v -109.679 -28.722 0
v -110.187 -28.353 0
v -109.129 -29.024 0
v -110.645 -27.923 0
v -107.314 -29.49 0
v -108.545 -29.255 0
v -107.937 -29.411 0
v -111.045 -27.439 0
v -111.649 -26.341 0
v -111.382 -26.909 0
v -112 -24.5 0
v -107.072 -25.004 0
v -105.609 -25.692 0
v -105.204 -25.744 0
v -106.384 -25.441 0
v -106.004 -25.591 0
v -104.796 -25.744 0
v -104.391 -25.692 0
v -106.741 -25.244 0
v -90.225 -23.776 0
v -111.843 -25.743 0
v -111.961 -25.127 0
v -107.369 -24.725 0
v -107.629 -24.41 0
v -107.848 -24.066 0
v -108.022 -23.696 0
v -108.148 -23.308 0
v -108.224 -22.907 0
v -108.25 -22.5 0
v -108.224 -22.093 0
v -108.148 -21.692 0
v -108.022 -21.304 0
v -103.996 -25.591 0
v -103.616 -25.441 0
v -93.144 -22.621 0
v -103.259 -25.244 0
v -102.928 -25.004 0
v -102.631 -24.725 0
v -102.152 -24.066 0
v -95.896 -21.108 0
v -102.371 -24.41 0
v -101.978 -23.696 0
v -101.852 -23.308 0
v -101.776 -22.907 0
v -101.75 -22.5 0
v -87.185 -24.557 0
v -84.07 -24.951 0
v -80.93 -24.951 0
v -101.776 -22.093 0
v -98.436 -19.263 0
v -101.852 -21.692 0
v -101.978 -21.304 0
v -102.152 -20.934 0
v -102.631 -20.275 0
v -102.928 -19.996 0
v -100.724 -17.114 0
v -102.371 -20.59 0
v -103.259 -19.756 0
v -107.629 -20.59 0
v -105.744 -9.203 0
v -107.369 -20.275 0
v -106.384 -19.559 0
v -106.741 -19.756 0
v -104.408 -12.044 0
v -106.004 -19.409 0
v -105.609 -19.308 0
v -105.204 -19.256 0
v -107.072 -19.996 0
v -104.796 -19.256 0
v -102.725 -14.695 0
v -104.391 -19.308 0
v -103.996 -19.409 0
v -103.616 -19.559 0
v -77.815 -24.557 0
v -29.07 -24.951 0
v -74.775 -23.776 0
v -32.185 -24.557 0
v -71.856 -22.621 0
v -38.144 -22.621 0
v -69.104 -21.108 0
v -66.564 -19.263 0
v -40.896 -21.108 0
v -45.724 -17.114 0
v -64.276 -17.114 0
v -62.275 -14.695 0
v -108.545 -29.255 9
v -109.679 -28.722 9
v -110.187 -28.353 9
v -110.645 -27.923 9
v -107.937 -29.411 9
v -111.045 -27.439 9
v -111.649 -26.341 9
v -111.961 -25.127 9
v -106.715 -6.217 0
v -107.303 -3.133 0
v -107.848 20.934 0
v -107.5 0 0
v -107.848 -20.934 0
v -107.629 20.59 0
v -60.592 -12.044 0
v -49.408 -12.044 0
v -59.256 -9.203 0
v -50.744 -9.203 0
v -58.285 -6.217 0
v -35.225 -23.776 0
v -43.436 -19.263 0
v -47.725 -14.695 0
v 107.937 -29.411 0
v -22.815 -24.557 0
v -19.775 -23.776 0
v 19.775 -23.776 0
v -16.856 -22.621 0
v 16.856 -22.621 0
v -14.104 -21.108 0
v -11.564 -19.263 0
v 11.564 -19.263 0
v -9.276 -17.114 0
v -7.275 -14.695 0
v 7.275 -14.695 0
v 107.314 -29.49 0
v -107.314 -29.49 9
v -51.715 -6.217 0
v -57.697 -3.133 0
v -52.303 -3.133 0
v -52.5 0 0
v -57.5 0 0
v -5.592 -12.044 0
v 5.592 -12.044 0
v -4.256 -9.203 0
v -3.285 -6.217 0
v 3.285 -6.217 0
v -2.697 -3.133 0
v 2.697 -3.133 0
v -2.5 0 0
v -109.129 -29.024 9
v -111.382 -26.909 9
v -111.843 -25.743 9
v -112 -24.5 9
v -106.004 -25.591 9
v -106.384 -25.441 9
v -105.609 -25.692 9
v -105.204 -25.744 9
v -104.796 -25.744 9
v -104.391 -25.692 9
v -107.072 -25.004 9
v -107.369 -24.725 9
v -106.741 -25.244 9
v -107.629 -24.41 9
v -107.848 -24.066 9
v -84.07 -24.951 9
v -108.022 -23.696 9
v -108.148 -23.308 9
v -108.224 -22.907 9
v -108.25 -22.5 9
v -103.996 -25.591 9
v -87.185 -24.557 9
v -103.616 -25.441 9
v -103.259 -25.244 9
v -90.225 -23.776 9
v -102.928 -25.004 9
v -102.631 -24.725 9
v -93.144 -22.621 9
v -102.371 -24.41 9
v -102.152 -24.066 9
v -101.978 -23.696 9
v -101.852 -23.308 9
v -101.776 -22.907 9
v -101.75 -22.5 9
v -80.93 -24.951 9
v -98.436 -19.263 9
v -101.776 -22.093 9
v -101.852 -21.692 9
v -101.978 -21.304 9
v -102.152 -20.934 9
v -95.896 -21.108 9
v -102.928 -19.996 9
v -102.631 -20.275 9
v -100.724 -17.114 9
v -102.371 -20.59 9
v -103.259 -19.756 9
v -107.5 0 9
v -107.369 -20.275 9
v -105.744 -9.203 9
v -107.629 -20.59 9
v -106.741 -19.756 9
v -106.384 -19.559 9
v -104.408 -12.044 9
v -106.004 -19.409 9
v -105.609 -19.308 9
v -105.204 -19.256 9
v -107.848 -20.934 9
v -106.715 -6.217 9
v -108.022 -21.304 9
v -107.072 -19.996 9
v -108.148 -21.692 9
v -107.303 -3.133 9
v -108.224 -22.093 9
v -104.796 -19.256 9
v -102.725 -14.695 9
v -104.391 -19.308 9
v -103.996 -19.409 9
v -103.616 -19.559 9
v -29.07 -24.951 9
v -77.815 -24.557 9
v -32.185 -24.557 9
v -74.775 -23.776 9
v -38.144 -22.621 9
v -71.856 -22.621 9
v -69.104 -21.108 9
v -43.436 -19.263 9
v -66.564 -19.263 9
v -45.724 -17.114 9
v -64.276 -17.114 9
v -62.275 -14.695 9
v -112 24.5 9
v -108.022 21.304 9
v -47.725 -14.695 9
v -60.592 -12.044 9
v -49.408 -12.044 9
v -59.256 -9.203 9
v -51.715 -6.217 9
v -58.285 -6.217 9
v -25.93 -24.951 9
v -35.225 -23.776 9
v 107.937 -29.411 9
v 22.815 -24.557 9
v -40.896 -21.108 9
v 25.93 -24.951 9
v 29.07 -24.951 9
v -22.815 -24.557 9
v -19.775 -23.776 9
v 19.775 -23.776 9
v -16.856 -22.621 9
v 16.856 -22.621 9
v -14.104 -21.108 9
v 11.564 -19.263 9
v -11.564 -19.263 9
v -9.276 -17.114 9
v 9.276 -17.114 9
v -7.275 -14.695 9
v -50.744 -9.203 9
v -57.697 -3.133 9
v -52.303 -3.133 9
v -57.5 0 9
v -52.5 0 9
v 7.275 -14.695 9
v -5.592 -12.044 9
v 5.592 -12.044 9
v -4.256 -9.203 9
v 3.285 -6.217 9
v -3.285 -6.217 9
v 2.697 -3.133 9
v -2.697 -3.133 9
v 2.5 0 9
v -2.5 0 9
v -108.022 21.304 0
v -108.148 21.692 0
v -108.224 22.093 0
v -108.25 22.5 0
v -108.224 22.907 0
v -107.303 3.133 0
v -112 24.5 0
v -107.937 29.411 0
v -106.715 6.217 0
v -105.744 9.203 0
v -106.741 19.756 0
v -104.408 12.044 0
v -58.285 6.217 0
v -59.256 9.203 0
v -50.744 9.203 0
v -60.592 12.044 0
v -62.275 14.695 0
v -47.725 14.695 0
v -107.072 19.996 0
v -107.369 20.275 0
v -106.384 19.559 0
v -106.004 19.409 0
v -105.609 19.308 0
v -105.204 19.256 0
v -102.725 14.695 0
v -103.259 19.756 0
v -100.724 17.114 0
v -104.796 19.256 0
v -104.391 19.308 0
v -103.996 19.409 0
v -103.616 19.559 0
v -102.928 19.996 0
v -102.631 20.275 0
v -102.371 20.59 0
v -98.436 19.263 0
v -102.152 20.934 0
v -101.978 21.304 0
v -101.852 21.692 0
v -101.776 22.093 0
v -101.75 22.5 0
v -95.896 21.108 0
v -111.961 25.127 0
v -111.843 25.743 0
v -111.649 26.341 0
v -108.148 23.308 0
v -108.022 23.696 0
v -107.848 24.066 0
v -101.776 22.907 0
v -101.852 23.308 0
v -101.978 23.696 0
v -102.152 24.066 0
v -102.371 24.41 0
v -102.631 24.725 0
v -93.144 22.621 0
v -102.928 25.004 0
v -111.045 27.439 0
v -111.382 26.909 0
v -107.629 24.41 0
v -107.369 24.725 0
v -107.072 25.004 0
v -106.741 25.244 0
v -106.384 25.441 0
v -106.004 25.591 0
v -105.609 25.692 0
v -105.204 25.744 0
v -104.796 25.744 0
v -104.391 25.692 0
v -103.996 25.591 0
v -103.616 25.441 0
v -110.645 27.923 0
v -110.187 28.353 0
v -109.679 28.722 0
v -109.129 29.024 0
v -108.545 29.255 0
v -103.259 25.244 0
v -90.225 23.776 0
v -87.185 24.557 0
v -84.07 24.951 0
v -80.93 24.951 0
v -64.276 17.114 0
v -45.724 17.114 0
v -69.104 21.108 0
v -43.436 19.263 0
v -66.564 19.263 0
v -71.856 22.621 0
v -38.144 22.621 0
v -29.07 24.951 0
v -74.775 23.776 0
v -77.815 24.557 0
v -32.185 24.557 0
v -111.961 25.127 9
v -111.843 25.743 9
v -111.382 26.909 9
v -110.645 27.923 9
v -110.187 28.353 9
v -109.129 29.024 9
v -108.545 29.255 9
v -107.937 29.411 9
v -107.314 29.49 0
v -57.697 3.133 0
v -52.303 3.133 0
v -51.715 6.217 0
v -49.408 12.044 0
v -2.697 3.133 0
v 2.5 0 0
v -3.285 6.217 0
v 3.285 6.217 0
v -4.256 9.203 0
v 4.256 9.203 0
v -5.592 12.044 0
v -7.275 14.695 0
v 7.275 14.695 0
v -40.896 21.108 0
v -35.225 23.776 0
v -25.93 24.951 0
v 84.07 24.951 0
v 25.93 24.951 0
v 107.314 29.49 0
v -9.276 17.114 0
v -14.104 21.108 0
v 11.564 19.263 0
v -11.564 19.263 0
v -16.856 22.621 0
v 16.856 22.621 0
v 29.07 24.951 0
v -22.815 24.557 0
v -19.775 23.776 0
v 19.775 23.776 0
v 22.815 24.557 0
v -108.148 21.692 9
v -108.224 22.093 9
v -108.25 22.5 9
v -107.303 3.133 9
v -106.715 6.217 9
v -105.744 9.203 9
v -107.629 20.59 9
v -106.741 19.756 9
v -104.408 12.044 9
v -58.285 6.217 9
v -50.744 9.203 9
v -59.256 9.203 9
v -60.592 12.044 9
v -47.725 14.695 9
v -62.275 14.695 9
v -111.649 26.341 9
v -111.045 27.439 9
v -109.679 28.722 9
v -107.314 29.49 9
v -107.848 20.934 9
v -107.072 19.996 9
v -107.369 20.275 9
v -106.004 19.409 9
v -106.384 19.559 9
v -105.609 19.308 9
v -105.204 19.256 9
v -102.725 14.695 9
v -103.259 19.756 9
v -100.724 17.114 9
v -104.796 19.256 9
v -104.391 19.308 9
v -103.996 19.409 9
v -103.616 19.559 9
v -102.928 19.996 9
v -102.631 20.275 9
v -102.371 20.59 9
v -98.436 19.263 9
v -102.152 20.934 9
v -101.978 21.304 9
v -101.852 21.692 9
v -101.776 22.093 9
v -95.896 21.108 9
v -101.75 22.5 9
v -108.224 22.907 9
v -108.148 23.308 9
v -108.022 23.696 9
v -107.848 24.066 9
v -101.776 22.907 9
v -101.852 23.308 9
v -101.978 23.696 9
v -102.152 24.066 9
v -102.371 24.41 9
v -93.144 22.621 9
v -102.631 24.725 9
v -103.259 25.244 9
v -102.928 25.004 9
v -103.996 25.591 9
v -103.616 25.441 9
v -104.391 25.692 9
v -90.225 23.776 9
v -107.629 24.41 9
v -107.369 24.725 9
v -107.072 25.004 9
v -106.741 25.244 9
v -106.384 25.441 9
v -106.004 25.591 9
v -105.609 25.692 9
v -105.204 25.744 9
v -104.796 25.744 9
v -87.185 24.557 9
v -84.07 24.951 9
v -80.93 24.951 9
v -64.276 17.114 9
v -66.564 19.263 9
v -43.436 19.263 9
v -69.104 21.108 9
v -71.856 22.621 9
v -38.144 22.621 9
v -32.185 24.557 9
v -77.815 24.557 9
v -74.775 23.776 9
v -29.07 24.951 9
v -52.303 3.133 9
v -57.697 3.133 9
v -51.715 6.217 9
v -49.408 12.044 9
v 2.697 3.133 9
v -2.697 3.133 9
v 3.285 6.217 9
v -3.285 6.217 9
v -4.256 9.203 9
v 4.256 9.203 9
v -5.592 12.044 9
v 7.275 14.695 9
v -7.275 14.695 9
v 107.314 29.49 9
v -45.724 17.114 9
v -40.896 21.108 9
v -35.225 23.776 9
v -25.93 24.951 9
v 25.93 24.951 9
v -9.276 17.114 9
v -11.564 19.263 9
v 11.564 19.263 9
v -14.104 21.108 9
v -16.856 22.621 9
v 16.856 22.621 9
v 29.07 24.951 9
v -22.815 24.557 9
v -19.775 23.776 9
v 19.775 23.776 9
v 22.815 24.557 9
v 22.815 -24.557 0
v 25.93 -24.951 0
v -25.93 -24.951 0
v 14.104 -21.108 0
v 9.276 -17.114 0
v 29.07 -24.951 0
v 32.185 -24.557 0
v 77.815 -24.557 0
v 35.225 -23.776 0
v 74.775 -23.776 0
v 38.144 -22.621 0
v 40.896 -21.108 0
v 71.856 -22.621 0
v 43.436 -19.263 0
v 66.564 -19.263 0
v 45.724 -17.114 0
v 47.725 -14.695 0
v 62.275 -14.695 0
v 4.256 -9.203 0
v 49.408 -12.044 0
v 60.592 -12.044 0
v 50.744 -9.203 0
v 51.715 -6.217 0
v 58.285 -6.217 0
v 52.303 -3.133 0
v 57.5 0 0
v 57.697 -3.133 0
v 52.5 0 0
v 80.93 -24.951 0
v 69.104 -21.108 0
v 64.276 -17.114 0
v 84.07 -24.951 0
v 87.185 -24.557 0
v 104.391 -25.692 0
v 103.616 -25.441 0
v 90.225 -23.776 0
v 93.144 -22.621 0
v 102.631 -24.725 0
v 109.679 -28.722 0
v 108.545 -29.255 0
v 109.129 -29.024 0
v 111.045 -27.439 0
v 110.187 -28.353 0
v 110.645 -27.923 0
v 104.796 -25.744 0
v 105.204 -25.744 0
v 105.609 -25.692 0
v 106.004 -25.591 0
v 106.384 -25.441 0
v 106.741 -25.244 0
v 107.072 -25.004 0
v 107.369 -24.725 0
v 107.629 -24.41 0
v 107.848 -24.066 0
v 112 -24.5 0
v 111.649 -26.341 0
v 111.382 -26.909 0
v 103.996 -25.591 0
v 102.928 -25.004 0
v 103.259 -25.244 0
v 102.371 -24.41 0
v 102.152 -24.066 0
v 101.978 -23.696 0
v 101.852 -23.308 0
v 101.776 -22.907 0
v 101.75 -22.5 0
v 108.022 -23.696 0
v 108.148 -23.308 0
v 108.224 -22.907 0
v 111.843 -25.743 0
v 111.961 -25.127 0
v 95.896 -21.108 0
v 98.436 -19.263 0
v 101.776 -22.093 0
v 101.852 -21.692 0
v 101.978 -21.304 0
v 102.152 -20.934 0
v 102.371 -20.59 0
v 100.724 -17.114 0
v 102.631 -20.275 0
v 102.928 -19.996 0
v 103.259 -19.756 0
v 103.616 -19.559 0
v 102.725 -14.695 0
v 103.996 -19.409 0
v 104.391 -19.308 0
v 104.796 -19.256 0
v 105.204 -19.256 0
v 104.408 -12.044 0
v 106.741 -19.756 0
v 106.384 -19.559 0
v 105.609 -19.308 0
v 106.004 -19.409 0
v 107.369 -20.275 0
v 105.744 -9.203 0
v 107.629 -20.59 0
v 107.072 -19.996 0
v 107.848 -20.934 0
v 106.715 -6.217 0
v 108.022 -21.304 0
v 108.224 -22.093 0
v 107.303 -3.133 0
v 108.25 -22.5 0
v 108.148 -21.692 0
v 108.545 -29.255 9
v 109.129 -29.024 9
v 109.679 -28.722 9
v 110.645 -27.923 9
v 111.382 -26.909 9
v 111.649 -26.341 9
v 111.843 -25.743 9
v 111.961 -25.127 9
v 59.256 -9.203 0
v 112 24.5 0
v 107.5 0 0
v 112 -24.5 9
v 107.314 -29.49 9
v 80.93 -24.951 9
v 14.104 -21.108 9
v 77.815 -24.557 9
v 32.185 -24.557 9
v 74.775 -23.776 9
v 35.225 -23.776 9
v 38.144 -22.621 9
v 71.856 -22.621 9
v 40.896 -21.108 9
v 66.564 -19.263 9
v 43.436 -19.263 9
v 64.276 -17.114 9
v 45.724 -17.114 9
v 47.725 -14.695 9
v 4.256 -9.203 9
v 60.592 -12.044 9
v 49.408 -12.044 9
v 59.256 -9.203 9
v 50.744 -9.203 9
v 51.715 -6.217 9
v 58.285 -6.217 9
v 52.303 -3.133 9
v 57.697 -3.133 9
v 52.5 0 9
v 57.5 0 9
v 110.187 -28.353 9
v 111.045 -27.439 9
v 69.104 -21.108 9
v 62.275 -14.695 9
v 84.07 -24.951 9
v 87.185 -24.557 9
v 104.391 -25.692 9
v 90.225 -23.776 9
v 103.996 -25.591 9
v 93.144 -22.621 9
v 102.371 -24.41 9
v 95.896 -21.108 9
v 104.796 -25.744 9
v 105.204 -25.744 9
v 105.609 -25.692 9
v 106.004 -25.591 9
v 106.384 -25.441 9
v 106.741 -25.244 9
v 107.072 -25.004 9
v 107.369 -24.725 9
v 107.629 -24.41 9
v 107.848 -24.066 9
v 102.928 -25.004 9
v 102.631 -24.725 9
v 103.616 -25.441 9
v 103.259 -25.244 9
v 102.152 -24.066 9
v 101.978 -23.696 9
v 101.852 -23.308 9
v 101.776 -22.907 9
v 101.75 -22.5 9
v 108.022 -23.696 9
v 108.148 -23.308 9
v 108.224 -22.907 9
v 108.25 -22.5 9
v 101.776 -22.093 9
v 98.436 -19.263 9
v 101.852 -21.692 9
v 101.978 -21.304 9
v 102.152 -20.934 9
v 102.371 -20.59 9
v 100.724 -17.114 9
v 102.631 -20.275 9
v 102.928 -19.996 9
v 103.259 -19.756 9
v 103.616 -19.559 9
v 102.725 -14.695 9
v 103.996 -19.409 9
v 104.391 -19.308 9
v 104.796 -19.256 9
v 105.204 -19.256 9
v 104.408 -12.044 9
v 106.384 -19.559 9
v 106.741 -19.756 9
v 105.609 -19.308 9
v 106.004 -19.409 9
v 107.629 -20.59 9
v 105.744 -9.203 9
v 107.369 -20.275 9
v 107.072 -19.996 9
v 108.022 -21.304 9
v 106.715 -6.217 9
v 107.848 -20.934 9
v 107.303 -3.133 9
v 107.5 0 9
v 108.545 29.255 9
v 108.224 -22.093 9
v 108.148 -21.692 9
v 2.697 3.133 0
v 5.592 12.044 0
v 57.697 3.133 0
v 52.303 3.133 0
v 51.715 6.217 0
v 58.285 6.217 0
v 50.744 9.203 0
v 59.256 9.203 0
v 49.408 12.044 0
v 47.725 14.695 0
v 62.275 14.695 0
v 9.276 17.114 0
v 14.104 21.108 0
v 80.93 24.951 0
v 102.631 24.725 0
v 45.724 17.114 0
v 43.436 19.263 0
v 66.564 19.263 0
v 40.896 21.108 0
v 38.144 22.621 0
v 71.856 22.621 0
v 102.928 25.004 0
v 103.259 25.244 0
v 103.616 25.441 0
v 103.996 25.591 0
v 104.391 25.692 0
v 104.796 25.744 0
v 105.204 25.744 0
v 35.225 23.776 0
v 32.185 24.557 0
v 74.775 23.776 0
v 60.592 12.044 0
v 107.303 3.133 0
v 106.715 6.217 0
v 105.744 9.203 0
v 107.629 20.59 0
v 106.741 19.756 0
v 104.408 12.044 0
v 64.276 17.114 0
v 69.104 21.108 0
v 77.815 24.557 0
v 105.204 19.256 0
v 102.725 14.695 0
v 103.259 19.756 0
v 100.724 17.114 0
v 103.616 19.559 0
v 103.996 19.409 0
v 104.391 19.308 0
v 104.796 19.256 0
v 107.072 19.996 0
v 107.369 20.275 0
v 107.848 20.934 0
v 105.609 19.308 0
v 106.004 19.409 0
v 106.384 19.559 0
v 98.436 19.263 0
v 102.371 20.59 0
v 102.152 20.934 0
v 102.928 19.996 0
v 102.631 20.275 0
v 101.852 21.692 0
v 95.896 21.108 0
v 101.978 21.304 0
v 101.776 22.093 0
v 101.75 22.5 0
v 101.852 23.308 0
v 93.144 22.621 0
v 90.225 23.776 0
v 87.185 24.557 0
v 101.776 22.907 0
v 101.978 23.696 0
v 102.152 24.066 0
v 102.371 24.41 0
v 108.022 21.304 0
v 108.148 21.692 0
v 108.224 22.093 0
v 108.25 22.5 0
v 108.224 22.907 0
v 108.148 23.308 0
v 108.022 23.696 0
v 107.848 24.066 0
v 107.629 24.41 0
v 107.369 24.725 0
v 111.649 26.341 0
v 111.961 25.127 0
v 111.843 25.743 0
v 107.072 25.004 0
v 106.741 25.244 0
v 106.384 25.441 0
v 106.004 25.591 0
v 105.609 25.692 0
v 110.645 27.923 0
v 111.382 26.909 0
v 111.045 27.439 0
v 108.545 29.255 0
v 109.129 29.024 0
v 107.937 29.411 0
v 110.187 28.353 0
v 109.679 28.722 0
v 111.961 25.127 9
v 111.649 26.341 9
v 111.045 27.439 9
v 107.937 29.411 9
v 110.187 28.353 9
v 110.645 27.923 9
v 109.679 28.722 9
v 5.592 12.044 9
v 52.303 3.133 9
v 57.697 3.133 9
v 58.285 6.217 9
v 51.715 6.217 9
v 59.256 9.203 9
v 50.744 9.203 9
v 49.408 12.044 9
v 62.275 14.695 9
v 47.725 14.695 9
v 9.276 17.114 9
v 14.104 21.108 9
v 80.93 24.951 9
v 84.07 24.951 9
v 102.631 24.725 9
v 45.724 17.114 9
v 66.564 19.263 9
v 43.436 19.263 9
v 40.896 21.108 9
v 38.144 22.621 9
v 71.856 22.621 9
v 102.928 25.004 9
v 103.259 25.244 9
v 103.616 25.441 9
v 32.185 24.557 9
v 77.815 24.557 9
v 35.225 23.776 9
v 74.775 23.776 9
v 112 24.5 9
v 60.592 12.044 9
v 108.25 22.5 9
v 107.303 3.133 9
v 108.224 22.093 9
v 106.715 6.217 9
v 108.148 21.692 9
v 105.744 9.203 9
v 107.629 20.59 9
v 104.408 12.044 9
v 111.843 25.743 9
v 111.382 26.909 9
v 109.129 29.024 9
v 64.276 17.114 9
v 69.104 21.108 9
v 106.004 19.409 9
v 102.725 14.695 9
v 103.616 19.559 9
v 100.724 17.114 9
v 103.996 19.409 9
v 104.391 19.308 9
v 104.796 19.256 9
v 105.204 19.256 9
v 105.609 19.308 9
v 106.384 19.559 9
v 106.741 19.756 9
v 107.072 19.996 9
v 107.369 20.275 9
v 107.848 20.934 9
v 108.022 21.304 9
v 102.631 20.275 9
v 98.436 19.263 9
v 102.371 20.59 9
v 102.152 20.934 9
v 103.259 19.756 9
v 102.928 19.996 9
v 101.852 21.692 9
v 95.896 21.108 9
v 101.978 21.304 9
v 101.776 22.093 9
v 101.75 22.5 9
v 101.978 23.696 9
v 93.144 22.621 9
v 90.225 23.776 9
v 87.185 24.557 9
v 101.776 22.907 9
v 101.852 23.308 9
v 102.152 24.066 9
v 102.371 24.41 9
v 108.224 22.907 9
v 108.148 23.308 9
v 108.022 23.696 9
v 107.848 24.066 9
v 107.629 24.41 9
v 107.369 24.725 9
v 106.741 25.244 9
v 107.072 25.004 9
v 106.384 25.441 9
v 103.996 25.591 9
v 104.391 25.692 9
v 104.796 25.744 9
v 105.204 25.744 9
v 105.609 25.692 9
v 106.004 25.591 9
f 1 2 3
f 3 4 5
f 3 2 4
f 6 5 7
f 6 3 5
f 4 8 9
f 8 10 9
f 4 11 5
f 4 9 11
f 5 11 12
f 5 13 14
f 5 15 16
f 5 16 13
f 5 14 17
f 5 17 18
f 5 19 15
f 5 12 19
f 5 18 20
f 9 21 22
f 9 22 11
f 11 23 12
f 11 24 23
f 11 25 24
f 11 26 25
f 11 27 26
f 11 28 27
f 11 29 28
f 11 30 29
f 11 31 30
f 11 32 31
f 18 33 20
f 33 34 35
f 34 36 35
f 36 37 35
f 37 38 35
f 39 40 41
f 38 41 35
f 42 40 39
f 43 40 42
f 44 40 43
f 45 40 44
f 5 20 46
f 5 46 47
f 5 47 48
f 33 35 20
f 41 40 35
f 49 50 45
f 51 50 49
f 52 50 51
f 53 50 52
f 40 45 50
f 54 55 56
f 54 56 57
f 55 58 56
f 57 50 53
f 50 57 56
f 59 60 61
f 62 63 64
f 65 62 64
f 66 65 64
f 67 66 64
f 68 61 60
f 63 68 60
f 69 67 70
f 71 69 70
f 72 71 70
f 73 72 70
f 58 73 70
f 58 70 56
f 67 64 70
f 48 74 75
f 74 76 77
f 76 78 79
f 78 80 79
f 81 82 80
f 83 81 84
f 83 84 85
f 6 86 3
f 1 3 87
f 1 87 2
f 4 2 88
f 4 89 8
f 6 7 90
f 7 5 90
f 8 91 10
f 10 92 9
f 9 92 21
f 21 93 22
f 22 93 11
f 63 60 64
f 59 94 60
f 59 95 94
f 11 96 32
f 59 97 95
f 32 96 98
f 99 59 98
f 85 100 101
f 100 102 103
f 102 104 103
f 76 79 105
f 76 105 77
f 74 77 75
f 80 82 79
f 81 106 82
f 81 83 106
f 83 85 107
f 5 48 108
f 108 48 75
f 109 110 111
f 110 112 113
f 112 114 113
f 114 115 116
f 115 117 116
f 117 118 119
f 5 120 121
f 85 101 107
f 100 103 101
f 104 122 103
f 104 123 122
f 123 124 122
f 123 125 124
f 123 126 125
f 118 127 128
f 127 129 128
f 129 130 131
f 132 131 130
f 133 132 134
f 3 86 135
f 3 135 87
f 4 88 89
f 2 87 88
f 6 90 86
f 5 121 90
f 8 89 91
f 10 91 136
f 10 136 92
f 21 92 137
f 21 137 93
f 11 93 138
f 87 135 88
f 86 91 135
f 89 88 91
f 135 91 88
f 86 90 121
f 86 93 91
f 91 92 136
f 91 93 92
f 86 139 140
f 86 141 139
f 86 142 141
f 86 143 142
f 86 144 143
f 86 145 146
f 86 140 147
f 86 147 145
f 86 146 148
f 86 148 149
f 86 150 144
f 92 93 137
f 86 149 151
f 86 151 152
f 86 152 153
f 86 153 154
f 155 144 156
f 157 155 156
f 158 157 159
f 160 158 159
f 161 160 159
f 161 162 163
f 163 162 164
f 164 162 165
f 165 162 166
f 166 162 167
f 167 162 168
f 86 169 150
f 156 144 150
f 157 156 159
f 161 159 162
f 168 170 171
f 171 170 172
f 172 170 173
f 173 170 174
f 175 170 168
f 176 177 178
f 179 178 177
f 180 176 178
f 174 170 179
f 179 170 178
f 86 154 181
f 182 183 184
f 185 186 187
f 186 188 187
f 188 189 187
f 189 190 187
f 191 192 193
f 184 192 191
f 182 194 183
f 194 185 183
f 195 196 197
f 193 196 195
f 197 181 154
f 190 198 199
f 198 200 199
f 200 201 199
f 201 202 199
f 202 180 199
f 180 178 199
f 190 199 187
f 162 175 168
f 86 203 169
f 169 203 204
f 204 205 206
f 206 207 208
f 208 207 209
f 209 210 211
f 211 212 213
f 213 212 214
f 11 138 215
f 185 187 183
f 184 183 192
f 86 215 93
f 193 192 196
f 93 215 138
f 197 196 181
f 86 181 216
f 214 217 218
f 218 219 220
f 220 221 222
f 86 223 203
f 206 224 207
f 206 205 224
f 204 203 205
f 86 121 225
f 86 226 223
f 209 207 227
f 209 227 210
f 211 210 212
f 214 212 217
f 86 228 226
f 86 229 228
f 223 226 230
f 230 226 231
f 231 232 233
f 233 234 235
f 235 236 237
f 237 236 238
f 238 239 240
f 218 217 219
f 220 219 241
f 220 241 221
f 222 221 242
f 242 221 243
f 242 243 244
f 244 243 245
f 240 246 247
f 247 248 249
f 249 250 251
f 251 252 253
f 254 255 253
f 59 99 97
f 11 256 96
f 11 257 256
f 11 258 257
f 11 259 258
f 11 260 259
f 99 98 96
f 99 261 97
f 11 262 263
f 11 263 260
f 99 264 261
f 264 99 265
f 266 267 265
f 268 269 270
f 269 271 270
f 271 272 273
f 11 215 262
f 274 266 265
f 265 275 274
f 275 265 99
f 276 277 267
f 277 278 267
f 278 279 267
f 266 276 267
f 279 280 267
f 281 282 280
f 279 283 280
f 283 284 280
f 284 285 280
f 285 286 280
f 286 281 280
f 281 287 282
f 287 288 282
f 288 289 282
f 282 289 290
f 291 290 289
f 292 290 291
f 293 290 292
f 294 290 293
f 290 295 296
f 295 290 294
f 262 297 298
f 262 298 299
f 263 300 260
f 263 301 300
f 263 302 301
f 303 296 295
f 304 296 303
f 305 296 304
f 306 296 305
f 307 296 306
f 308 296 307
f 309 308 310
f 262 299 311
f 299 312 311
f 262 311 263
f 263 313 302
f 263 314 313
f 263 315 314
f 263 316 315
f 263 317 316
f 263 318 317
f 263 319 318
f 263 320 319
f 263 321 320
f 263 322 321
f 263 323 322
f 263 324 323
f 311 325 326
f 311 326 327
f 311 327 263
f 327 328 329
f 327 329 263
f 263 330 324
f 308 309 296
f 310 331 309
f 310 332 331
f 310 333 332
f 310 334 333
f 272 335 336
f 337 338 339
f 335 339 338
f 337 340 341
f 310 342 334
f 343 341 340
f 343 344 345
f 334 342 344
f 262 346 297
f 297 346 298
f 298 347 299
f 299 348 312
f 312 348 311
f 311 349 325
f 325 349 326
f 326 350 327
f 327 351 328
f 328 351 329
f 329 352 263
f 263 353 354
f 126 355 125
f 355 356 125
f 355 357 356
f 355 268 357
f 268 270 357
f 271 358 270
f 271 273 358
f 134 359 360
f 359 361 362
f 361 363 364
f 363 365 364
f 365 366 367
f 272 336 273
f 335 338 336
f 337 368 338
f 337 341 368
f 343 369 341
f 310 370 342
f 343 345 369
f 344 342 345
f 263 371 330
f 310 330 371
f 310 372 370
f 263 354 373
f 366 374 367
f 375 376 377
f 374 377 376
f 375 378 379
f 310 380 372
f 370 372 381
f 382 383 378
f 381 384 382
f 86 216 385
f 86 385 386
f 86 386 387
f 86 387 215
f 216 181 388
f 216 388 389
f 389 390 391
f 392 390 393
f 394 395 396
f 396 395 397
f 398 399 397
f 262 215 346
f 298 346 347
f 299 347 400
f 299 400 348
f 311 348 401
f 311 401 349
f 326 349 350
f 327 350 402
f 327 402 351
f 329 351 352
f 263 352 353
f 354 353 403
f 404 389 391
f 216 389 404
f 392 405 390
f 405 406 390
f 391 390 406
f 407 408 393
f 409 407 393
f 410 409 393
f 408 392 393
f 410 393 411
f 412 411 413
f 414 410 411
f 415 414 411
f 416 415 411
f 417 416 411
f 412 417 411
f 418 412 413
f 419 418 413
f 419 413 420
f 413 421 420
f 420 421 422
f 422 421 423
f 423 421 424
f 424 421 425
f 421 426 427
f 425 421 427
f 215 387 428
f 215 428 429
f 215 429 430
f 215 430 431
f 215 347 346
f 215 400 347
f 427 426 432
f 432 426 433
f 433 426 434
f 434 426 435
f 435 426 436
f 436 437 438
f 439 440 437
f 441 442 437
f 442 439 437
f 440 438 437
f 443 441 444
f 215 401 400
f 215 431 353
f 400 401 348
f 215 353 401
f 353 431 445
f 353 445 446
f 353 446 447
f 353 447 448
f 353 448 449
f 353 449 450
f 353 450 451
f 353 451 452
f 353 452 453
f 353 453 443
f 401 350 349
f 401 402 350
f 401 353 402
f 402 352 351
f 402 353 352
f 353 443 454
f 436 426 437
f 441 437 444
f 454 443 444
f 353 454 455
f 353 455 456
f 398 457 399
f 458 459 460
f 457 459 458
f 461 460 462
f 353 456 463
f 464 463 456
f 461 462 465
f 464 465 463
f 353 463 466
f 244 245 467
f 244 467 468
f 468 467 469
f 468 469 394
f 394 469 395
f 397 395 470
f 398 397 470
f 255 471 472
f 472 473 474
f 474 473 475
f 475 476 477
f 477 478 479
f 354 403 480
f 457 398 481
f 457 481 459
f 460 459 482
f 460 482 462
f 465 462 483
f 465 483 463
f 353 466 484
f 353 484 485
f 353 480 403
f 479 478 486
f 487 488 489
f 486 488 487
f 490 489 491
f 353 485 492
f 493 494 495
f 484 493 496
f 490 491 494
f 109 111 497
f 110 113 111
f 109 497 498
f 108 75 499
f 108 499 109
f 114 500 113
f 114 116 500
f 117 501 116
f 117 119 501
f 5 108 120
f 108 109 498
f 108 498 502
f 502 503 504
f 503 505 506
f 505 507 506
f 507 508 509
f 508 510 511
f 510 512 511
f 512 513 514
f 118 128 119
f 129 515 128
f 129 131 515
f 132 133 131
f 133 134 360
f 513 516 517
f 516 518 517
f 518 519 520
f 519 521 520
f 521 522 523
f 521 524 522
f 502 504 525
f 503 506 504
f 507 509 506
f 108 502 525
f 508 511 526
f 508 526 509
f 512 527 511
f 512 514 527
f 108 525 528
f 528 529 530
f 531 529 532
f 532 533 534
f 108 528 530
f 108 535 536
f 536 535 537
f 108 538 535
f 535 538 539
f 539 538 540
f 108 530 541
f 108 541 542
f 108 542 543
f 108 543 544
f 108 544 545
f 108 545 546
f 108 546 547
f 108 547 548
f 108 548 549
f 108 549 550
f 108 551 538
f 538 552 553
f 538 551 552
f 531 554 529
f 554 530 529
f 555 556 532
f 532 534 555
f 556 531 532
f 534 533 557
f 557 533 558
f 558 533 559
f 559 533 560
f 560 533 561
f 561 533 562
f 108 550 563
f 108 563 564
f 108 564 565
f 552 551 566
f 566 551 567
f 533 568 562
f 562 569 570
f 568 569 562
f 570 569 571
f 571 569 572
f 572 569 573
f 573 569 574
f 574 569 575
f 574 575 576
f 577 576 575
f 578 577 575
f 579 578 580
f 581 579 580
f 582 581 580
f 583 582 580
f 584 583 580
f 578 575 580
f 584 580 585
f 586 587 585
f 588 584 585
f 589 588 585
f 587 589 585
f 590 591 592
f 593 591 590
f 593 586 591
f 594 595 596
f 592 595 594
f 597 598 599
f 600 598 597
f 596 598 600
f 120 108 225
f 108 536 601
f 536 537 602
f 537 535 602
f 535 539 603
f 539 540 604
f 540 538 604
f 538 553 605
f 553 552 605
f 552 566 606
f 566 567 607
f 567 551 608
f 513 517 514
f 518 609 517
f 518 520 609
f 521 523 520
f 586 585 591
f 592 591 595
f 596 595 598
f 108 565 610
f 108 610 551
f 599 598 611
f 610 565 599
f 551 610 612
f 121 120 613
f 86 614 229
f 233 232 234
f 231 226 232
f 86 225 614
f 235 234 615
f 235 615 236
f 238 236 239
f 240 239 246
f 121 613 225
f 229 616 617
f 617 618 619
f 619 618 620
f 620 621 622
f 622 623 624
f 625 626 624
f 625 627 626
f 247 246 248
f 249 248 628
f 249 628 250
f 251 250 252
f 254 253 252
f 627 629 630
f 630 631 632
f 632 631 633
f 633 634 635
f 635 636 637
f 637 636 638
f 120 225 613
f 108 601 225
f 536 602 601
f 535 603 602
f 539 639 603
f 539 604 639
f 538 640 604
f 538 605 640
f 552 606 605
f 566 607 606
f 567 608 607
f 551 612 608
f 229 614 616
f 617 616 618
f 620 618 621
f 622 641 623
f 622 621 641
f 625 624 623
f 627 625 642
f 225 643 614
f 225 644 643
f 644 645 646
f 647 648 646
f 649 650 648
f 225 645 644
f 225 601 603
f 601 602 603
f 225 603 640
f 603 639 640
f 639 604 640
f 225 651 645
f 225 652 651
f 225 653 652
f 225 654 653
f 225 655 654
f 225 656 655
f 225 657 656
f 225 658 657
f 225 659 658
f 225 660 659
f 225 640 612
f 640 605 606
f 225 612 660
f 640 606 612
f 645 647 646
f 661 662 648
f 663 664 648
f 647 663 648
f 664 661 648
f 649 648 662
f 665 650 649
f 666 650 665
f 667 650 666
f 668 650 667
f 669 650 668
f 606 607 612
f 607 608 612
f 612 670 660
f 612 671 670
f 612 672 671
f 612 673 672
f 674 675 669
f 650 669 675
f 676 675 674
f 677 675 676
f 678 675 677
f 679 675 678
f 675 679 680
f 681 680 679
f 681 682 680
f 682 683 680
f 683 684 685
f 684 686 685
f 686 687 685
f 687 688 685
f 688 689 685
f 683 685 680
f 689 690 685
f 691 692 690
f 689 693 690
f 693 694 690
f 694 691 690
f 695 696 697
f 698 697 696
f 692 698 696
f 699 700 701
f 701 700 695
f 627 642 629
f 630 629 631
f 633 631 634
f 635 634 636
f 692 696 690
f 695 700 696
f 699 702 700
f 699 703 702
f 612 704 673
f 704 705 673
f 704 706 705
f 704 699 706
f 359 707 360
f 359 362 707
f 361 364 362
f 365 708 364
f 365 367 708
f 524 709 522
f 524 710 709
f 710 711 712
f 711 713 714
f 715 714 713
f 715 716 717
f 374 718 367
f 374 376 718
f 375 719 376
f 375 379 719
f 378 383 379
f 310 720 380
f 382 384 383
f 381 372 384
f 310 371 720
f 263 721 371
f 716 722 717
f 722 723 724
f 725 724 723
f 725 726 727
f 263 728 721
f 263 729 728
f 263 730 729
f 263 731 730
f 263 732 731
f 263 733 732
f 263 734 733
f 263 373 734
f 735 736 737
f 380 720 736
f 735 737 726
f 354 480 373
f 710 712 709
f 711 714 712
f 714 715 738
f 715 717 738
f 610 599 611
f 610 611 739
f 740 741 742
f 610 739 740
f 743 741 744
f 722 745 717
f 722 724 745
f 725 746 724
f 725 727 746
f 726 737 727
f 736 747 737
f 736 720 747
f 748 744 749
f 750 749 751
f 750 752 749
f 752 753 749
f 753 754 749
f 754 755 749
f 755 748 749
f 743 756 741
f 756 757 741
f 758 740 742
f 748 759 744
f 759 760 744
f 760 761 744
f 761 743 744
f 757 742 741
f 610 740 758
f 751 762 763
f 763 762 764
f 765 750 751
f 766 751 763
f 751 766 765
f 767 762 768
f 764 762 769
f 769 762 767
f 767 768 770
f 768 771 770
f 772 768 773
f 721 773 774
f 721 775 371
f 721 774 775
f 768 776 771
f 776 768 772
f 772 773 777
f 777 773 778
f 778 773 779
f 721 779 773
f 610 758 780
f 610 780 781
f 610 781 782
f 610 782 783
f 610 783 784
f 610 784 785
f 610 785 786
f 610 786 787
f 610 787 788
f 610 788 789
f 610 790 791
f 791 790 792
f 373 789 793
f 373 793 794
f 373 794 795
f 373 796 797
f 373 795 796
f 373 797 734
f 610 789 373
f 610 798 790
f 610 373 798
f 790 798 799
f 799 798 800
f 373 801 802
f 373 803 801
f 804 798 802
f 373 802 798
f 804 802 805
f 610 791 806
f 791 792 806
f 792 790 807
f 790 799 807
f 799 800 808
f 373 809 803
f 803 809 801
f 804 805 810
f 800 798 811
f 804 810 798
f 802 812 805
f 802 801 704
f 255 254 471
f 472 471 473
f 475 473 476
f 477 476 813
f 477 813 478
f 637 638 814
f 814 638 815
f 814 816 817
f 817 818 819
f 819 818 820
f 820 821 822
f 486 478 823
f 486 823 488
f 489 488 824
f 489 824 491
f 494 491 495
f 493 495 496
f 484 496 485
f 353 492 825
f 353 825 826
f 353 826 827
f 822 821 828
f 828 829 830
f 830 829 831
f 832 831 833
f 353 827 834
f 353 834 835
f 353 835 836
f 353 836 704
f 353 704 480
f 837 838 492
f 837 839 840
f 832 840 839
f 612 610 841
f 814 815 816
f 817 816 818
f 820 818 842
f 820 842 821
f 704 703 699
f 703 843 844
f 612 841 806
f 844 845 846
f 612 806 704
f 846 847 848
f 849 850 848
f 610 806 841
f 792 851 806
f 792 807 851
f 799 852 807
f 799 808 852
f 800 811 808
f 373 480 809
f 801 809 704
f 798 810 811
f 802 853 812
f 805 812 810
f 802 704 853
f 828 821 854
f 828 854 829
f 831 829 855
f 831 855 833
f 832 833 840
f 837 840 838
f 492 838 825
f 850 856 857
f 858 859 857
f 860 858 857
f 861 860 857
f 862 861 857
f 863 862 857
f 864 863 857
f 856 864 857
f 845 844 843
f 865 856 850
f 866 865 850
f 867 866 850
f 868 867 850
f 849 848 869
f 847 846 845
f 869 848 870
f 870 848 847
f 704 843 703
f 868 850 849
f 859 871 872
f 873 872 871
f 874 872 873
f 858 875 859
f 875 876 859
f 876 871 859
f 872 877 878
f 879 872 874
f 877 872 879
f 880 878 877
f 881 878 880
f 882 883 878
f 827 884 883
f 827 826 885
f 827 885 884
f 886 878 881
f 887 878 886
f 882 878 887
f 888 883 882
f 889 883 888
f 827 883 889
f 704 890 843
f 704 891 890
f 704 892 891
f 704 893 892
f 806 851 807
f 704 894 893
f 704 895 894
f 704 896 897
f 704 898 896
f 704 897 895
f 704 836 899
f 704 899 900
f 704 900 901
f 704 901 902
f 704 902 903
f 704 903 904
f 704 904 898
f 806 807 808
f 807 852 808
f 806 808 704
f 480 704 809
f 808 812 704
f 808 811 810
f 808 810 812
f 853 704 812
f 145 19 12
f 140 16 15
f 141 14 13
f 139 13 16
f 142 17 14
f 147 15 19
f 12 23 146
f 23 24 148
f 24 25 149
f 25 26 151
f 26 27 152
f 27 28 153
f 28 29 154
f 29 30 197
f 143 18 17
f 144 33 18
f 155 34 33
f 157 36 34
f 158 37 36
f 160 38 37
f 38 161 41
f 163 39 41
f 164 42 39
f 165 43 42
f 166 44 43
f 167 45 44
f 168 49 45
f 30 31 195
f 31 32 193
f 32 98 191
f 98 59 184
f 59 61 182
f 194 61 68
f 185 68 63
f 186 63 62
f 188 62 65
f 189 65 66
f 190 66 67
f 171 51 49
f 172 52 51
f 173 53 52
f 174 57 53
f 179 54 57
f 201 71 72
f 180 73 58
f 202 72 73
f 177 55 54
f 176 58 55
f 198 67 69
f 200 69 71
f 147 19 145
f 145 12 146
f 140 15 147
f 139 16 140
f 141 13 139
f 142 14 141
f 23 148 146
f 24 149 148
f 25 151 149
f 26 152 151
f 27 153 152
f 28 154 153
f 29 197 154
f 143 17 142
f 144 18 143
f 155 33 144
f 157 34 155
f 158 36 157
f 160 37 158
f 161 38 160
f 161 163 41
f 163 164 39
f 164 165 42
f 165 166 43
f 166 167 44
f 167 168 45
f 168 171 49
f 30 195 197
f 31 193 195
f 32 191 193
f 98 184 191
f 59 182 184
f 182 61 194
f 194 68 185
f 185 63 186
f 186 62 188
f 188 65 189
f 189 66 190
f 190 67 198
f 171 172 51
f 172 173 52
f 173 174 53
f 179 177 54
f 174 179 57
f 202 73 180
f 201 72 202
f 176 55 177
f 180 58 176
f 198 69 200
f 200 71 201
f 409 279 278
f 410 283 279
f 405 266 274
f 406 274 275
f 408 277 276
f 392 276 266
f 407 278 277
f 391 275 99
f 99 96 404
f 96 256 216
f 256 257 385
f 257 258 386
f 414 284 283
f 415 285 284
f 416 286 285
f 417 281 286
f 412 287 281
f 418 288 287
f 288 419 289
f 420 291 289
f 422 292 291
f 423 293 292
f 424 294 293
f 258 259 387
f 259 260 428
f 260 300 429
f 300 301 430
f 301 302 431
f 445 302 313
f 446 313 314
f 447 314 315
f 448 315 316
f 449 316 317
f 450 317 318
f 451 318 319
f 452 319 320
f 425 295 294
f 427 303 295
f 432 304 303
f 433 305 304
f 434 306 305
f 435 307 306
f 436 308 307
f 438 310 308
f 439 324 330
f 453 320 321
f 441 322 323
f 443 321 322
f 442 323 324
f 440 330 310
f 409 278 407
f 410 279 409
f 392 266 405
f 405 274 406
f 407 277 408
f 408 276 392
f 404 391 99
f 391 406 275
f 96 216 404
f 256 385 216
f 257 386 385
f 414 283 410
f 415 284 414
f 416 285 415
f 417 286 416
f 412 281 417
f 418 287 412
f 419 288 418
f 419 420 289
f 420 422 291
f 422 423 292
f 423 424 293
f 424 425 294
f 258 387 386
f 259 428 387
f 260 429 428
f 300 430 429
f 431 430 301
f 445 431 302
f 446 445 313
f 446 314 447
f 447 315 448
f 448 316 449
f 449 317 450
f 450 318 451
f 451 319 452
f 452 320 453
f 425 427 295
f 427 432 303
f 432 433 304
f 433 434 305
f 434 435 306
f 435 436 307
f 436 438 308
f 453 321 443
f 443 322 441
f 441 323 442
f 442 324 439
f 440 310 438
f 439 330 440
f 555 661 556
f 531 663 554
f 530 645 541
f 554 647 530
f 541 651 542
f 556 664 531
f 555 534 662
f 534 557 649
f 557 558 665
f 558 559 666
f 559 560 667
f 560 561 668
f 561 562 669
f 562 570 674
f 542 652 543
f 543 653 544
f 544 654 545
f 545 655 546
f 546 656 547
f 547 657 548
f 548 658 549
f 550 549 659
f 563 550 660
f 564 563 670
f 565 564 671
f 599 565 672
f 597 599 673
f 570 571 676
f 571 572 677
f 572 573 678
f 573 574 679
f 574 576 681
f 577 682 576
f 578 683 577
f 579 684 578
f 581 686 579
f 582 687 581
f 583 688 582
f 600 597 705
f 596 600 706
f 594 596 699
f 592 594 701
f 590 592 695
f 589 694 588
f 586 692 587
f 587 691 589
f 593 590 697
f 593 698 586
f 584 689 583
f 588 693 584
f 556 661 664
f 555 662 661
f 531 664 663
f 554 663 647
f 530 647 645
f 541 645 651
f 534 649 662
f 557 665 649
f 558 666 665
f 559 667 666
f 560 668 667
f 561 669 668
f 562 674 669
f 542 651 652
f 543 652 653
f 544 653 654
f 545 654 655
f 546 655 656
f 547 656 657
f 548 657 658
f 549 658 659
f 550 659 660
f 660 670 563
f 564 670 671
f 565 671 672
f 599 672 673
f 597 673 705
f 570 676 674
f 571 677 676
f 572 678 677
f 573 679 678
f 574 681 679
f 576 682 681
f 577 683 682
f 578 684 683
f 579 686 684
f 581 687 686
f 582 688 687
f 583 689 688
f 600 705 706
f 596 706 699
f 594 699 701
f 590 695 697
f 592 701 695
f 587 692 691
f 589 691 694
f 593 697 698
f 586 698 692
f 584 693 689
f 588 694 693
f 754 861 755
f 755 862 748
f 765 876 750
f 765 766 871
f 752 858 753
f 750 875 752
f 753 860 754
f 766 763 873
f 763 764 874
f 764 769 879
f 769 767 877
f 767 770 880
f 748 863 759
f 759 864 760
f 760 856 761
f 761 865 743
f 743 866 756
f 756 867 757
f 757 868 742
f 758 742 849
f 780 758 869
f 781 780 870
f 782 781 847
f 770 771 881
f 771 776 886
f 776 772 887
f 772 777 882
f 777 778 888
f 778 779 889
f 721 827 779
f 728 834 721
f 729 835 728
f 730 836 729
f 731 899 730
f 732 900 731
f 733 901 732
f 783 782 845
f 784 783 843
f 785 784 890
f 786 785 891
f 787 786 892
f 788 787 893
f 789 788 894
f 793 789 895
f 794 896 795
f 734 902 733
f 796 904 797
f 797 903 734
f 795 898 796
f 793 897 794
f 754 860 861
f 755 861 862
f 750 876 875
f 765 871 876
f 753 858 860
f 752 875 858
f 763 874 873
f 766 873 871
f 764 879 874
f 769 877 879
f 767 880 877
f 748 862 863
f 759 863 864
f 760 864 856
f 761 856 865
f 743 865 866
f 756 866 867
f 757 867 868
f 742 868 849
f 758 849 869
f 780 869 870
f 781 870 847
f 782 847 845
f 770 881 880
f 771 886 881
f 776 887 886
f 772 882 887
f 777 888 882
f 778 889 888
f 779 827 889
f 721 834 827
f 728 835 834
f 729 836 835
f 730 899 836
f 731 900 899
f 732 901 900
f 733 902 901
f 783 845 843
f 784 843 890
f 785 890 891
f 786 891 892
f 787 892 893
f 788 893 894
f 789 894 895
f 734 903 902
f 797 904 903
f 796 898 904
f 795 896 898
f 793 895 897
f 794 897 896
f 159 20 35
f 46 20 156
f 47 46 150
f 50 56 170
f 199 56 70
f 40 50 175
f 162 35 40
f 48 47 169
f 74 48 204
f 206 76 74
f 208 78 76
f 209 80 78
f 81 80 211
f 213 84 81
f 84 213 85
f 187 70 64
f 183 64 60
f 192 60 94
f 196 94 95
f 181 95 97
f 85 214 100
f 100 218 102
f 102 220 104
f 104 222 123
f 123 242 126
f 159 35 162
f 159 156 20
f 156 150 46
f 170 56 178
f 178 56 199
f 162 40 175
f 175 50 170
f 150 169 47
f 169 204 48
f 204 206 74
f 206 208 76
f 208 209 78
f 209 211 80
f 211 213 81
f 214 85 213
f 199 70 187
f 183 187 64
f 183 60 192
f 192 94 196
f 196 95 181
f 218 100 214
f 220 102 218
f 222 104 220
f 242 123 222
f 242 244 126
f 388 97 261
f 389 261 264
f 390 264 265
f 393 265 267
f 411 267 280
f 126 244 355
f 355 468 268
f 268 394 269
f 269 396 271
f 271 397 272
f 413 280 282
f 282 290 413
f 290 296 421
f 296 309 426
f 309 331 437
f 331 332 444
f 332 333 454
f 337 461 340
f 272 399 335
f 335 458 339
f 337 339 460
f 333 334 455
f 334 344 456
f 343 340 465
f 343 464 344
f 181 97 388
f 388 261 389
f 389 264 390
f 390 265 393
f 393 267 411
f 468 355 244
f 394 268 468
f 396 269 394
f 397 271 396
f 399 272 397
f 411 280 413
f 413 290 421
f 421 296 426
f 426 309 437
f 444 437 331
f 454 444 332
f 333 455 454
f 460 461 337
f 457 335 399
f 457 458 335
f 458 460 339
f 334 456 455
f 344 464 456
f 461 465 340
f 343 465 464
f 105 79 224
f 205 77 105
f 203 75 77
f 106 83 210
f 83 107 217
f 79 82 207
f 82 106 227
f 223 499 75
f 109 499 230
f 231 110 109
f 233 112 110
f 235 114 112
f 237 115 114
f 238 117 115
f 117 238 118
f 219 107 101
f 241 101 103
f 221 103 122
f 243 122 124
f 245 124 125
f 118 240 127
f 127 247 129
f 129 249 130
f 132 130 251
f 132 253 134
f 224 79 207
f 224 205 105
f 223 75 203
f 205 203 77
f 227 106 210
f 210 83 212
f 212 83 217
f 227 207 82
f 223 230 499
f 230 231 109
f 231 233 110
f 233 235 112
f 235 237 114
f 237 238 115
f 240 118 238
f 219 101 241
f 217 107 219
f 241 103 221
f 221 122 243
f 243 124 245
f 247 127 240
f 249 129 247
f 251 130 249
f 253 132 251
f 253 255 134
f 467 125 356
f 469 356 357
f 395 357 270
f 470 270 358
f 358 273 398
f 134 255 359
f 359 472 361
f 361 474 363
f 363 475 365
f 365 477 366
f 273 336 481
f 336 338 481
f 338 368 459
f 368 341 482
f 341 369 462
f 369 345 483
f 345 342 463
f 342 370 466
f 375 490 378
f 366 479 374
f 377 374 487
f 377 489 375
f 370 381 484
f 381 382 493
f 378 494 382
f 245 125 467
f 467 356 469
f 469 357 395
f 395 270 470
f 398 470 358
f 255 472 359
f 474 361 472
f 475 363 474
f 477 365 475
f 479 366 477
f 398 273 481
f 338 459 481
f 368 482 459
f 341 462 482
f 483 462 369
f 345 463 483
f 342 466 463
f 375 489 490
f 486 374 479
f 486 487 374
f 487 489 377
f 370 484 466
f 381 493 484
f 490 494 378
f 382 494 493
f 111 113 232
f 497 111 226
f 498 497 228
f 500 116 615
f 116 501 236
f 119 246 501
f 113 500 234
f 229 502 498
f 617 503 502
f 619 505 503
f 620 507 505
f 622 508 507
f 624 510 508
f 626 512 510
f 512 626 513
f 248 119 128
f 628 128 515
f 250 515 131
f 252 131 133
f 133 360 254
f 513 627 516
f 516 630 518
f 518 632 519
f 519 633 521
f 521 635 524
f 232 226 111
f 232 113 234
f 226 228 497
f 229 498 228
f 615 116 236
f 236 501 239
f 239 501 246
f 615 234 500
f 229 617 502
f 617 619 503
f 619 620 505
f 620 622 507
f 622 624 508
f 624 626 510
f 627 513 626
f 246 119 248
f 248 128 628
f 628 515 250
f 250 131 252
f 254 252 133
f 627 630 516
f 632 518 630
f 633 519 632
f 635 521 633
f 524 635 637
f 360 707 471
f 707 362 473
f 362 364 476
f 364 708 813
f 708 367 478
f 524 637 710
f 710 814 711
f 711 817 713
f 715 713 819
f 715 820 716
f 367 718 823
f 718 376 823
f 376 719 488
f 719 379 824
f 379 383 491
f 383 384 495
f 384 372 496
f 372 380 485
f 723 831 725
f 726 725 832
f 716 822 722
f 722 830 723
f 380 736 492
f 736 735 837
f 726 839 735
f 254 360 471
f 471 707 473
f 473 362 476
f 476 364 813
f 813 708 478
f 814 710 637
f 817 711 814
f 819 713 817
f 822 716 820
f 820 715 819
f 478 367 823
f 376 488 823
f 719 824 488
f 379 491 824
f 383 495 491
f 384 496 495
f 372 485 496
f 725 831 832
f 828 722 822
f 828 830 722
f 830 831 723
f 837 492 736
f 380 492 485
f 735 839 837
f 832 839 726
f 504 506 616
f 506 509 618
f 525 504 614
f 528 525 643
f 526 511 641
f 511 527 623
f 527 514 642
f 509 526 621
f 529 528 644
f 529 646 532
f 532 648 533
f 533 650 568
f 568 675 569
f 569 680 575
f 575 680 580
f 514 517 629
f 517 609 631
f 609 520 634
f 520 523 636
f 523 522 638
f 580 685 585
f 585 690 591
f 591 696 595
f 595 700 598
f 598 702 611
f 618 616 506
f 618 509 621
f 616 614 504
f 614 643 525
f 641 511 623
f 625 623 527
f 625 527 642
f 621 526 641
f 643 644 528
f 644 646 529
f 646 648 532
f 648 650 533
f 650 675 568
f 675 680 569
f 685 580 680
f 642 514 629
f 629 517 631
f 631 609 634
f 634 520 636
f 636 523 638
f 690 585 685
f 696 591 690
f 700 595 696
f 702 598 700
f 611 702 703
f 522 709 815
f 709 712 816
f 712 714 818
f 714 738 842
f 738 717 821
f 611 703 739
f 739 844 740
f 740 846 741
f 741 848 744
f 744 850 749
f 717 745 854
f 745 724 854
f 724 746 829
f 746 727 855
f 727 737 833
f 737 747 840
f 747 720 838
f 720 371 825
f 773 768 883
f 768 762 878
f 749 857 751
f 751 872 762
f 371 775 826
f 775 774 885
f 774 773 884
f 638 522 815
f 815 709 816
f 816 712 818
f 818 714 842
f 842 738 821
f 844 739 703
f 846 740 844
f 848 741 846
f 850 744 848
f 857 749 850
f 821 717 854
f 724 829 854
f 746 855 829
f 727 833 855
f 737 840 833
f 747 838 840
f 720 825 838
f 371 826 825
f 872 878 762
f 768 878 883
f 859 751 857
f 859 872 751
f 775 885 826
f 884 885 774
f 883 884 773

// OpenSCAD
$fn = 50;

difference() {
	union() {
		hull() {
			translate(v = [-107.0, 24.5, 0]) {
				cylinder(h = 9, r = 5);
			}
			translate(v = [107.0, 24.5, 0]) {
				cylinder(h = 9, r = 5);
			}
			translate(v = [-107.0, -24.5, 0]) {
				cylinder(h = 9, r = 5);
			}
			translate(v = [107.0, -24.5, 0]) {
				cylinder(h = 9, r = 5);
			}
		}
	}
	union() {
		translate(v = [-105.0, -22.5, -100.0]) {
			cylinder(h = 200, r = 3.25);
		}
		translate(v = [-105.0, 22.5, -100.0]) {
			cylinder(h = 200, r = 3.25);
		}
		translate(v = [105.0, -22.5, -100.0]) {
			cylinder(h = 200, r = 3.25);
		}
		translate(v = [105.0, 22.5, -100.0]) {
			cylinder(h = 200, r = 3.25);
		}
		translate(v = [-105.0, -22.5, -100.0]) {
			cylinder(h = 200, r = 1.8);
		}
		translate(v = [-105.0, 22.5, -100.0]) {
			cylinder(h = 200, r = 1.8);
		}
		translate(v = [105.0, -22.5, -100.0]) {
			cylinder(h = 200, r = 1.8);
		}
		translate(v = [105.0, 22.5, -100.0]) {
			cylinder(h = 200, r = 1.8);
		}
		translate(v = [-82.5, 0, 0.0]) {
			cylinder(h = 9, r = 25.0);
		}
		translate(v = [-27.5, 0, 0.0]) {
			cylinder(h = 9, r = 25.0);
		}
		translate(v = [27.5, 0, 0.0]) {
			cylinder(h = 9, r = 25.0);
		}
		translate(v = [82.5, 0, 0.0]) {
			cylinder(h = 9, r = 25.0);
		}
	}
}
